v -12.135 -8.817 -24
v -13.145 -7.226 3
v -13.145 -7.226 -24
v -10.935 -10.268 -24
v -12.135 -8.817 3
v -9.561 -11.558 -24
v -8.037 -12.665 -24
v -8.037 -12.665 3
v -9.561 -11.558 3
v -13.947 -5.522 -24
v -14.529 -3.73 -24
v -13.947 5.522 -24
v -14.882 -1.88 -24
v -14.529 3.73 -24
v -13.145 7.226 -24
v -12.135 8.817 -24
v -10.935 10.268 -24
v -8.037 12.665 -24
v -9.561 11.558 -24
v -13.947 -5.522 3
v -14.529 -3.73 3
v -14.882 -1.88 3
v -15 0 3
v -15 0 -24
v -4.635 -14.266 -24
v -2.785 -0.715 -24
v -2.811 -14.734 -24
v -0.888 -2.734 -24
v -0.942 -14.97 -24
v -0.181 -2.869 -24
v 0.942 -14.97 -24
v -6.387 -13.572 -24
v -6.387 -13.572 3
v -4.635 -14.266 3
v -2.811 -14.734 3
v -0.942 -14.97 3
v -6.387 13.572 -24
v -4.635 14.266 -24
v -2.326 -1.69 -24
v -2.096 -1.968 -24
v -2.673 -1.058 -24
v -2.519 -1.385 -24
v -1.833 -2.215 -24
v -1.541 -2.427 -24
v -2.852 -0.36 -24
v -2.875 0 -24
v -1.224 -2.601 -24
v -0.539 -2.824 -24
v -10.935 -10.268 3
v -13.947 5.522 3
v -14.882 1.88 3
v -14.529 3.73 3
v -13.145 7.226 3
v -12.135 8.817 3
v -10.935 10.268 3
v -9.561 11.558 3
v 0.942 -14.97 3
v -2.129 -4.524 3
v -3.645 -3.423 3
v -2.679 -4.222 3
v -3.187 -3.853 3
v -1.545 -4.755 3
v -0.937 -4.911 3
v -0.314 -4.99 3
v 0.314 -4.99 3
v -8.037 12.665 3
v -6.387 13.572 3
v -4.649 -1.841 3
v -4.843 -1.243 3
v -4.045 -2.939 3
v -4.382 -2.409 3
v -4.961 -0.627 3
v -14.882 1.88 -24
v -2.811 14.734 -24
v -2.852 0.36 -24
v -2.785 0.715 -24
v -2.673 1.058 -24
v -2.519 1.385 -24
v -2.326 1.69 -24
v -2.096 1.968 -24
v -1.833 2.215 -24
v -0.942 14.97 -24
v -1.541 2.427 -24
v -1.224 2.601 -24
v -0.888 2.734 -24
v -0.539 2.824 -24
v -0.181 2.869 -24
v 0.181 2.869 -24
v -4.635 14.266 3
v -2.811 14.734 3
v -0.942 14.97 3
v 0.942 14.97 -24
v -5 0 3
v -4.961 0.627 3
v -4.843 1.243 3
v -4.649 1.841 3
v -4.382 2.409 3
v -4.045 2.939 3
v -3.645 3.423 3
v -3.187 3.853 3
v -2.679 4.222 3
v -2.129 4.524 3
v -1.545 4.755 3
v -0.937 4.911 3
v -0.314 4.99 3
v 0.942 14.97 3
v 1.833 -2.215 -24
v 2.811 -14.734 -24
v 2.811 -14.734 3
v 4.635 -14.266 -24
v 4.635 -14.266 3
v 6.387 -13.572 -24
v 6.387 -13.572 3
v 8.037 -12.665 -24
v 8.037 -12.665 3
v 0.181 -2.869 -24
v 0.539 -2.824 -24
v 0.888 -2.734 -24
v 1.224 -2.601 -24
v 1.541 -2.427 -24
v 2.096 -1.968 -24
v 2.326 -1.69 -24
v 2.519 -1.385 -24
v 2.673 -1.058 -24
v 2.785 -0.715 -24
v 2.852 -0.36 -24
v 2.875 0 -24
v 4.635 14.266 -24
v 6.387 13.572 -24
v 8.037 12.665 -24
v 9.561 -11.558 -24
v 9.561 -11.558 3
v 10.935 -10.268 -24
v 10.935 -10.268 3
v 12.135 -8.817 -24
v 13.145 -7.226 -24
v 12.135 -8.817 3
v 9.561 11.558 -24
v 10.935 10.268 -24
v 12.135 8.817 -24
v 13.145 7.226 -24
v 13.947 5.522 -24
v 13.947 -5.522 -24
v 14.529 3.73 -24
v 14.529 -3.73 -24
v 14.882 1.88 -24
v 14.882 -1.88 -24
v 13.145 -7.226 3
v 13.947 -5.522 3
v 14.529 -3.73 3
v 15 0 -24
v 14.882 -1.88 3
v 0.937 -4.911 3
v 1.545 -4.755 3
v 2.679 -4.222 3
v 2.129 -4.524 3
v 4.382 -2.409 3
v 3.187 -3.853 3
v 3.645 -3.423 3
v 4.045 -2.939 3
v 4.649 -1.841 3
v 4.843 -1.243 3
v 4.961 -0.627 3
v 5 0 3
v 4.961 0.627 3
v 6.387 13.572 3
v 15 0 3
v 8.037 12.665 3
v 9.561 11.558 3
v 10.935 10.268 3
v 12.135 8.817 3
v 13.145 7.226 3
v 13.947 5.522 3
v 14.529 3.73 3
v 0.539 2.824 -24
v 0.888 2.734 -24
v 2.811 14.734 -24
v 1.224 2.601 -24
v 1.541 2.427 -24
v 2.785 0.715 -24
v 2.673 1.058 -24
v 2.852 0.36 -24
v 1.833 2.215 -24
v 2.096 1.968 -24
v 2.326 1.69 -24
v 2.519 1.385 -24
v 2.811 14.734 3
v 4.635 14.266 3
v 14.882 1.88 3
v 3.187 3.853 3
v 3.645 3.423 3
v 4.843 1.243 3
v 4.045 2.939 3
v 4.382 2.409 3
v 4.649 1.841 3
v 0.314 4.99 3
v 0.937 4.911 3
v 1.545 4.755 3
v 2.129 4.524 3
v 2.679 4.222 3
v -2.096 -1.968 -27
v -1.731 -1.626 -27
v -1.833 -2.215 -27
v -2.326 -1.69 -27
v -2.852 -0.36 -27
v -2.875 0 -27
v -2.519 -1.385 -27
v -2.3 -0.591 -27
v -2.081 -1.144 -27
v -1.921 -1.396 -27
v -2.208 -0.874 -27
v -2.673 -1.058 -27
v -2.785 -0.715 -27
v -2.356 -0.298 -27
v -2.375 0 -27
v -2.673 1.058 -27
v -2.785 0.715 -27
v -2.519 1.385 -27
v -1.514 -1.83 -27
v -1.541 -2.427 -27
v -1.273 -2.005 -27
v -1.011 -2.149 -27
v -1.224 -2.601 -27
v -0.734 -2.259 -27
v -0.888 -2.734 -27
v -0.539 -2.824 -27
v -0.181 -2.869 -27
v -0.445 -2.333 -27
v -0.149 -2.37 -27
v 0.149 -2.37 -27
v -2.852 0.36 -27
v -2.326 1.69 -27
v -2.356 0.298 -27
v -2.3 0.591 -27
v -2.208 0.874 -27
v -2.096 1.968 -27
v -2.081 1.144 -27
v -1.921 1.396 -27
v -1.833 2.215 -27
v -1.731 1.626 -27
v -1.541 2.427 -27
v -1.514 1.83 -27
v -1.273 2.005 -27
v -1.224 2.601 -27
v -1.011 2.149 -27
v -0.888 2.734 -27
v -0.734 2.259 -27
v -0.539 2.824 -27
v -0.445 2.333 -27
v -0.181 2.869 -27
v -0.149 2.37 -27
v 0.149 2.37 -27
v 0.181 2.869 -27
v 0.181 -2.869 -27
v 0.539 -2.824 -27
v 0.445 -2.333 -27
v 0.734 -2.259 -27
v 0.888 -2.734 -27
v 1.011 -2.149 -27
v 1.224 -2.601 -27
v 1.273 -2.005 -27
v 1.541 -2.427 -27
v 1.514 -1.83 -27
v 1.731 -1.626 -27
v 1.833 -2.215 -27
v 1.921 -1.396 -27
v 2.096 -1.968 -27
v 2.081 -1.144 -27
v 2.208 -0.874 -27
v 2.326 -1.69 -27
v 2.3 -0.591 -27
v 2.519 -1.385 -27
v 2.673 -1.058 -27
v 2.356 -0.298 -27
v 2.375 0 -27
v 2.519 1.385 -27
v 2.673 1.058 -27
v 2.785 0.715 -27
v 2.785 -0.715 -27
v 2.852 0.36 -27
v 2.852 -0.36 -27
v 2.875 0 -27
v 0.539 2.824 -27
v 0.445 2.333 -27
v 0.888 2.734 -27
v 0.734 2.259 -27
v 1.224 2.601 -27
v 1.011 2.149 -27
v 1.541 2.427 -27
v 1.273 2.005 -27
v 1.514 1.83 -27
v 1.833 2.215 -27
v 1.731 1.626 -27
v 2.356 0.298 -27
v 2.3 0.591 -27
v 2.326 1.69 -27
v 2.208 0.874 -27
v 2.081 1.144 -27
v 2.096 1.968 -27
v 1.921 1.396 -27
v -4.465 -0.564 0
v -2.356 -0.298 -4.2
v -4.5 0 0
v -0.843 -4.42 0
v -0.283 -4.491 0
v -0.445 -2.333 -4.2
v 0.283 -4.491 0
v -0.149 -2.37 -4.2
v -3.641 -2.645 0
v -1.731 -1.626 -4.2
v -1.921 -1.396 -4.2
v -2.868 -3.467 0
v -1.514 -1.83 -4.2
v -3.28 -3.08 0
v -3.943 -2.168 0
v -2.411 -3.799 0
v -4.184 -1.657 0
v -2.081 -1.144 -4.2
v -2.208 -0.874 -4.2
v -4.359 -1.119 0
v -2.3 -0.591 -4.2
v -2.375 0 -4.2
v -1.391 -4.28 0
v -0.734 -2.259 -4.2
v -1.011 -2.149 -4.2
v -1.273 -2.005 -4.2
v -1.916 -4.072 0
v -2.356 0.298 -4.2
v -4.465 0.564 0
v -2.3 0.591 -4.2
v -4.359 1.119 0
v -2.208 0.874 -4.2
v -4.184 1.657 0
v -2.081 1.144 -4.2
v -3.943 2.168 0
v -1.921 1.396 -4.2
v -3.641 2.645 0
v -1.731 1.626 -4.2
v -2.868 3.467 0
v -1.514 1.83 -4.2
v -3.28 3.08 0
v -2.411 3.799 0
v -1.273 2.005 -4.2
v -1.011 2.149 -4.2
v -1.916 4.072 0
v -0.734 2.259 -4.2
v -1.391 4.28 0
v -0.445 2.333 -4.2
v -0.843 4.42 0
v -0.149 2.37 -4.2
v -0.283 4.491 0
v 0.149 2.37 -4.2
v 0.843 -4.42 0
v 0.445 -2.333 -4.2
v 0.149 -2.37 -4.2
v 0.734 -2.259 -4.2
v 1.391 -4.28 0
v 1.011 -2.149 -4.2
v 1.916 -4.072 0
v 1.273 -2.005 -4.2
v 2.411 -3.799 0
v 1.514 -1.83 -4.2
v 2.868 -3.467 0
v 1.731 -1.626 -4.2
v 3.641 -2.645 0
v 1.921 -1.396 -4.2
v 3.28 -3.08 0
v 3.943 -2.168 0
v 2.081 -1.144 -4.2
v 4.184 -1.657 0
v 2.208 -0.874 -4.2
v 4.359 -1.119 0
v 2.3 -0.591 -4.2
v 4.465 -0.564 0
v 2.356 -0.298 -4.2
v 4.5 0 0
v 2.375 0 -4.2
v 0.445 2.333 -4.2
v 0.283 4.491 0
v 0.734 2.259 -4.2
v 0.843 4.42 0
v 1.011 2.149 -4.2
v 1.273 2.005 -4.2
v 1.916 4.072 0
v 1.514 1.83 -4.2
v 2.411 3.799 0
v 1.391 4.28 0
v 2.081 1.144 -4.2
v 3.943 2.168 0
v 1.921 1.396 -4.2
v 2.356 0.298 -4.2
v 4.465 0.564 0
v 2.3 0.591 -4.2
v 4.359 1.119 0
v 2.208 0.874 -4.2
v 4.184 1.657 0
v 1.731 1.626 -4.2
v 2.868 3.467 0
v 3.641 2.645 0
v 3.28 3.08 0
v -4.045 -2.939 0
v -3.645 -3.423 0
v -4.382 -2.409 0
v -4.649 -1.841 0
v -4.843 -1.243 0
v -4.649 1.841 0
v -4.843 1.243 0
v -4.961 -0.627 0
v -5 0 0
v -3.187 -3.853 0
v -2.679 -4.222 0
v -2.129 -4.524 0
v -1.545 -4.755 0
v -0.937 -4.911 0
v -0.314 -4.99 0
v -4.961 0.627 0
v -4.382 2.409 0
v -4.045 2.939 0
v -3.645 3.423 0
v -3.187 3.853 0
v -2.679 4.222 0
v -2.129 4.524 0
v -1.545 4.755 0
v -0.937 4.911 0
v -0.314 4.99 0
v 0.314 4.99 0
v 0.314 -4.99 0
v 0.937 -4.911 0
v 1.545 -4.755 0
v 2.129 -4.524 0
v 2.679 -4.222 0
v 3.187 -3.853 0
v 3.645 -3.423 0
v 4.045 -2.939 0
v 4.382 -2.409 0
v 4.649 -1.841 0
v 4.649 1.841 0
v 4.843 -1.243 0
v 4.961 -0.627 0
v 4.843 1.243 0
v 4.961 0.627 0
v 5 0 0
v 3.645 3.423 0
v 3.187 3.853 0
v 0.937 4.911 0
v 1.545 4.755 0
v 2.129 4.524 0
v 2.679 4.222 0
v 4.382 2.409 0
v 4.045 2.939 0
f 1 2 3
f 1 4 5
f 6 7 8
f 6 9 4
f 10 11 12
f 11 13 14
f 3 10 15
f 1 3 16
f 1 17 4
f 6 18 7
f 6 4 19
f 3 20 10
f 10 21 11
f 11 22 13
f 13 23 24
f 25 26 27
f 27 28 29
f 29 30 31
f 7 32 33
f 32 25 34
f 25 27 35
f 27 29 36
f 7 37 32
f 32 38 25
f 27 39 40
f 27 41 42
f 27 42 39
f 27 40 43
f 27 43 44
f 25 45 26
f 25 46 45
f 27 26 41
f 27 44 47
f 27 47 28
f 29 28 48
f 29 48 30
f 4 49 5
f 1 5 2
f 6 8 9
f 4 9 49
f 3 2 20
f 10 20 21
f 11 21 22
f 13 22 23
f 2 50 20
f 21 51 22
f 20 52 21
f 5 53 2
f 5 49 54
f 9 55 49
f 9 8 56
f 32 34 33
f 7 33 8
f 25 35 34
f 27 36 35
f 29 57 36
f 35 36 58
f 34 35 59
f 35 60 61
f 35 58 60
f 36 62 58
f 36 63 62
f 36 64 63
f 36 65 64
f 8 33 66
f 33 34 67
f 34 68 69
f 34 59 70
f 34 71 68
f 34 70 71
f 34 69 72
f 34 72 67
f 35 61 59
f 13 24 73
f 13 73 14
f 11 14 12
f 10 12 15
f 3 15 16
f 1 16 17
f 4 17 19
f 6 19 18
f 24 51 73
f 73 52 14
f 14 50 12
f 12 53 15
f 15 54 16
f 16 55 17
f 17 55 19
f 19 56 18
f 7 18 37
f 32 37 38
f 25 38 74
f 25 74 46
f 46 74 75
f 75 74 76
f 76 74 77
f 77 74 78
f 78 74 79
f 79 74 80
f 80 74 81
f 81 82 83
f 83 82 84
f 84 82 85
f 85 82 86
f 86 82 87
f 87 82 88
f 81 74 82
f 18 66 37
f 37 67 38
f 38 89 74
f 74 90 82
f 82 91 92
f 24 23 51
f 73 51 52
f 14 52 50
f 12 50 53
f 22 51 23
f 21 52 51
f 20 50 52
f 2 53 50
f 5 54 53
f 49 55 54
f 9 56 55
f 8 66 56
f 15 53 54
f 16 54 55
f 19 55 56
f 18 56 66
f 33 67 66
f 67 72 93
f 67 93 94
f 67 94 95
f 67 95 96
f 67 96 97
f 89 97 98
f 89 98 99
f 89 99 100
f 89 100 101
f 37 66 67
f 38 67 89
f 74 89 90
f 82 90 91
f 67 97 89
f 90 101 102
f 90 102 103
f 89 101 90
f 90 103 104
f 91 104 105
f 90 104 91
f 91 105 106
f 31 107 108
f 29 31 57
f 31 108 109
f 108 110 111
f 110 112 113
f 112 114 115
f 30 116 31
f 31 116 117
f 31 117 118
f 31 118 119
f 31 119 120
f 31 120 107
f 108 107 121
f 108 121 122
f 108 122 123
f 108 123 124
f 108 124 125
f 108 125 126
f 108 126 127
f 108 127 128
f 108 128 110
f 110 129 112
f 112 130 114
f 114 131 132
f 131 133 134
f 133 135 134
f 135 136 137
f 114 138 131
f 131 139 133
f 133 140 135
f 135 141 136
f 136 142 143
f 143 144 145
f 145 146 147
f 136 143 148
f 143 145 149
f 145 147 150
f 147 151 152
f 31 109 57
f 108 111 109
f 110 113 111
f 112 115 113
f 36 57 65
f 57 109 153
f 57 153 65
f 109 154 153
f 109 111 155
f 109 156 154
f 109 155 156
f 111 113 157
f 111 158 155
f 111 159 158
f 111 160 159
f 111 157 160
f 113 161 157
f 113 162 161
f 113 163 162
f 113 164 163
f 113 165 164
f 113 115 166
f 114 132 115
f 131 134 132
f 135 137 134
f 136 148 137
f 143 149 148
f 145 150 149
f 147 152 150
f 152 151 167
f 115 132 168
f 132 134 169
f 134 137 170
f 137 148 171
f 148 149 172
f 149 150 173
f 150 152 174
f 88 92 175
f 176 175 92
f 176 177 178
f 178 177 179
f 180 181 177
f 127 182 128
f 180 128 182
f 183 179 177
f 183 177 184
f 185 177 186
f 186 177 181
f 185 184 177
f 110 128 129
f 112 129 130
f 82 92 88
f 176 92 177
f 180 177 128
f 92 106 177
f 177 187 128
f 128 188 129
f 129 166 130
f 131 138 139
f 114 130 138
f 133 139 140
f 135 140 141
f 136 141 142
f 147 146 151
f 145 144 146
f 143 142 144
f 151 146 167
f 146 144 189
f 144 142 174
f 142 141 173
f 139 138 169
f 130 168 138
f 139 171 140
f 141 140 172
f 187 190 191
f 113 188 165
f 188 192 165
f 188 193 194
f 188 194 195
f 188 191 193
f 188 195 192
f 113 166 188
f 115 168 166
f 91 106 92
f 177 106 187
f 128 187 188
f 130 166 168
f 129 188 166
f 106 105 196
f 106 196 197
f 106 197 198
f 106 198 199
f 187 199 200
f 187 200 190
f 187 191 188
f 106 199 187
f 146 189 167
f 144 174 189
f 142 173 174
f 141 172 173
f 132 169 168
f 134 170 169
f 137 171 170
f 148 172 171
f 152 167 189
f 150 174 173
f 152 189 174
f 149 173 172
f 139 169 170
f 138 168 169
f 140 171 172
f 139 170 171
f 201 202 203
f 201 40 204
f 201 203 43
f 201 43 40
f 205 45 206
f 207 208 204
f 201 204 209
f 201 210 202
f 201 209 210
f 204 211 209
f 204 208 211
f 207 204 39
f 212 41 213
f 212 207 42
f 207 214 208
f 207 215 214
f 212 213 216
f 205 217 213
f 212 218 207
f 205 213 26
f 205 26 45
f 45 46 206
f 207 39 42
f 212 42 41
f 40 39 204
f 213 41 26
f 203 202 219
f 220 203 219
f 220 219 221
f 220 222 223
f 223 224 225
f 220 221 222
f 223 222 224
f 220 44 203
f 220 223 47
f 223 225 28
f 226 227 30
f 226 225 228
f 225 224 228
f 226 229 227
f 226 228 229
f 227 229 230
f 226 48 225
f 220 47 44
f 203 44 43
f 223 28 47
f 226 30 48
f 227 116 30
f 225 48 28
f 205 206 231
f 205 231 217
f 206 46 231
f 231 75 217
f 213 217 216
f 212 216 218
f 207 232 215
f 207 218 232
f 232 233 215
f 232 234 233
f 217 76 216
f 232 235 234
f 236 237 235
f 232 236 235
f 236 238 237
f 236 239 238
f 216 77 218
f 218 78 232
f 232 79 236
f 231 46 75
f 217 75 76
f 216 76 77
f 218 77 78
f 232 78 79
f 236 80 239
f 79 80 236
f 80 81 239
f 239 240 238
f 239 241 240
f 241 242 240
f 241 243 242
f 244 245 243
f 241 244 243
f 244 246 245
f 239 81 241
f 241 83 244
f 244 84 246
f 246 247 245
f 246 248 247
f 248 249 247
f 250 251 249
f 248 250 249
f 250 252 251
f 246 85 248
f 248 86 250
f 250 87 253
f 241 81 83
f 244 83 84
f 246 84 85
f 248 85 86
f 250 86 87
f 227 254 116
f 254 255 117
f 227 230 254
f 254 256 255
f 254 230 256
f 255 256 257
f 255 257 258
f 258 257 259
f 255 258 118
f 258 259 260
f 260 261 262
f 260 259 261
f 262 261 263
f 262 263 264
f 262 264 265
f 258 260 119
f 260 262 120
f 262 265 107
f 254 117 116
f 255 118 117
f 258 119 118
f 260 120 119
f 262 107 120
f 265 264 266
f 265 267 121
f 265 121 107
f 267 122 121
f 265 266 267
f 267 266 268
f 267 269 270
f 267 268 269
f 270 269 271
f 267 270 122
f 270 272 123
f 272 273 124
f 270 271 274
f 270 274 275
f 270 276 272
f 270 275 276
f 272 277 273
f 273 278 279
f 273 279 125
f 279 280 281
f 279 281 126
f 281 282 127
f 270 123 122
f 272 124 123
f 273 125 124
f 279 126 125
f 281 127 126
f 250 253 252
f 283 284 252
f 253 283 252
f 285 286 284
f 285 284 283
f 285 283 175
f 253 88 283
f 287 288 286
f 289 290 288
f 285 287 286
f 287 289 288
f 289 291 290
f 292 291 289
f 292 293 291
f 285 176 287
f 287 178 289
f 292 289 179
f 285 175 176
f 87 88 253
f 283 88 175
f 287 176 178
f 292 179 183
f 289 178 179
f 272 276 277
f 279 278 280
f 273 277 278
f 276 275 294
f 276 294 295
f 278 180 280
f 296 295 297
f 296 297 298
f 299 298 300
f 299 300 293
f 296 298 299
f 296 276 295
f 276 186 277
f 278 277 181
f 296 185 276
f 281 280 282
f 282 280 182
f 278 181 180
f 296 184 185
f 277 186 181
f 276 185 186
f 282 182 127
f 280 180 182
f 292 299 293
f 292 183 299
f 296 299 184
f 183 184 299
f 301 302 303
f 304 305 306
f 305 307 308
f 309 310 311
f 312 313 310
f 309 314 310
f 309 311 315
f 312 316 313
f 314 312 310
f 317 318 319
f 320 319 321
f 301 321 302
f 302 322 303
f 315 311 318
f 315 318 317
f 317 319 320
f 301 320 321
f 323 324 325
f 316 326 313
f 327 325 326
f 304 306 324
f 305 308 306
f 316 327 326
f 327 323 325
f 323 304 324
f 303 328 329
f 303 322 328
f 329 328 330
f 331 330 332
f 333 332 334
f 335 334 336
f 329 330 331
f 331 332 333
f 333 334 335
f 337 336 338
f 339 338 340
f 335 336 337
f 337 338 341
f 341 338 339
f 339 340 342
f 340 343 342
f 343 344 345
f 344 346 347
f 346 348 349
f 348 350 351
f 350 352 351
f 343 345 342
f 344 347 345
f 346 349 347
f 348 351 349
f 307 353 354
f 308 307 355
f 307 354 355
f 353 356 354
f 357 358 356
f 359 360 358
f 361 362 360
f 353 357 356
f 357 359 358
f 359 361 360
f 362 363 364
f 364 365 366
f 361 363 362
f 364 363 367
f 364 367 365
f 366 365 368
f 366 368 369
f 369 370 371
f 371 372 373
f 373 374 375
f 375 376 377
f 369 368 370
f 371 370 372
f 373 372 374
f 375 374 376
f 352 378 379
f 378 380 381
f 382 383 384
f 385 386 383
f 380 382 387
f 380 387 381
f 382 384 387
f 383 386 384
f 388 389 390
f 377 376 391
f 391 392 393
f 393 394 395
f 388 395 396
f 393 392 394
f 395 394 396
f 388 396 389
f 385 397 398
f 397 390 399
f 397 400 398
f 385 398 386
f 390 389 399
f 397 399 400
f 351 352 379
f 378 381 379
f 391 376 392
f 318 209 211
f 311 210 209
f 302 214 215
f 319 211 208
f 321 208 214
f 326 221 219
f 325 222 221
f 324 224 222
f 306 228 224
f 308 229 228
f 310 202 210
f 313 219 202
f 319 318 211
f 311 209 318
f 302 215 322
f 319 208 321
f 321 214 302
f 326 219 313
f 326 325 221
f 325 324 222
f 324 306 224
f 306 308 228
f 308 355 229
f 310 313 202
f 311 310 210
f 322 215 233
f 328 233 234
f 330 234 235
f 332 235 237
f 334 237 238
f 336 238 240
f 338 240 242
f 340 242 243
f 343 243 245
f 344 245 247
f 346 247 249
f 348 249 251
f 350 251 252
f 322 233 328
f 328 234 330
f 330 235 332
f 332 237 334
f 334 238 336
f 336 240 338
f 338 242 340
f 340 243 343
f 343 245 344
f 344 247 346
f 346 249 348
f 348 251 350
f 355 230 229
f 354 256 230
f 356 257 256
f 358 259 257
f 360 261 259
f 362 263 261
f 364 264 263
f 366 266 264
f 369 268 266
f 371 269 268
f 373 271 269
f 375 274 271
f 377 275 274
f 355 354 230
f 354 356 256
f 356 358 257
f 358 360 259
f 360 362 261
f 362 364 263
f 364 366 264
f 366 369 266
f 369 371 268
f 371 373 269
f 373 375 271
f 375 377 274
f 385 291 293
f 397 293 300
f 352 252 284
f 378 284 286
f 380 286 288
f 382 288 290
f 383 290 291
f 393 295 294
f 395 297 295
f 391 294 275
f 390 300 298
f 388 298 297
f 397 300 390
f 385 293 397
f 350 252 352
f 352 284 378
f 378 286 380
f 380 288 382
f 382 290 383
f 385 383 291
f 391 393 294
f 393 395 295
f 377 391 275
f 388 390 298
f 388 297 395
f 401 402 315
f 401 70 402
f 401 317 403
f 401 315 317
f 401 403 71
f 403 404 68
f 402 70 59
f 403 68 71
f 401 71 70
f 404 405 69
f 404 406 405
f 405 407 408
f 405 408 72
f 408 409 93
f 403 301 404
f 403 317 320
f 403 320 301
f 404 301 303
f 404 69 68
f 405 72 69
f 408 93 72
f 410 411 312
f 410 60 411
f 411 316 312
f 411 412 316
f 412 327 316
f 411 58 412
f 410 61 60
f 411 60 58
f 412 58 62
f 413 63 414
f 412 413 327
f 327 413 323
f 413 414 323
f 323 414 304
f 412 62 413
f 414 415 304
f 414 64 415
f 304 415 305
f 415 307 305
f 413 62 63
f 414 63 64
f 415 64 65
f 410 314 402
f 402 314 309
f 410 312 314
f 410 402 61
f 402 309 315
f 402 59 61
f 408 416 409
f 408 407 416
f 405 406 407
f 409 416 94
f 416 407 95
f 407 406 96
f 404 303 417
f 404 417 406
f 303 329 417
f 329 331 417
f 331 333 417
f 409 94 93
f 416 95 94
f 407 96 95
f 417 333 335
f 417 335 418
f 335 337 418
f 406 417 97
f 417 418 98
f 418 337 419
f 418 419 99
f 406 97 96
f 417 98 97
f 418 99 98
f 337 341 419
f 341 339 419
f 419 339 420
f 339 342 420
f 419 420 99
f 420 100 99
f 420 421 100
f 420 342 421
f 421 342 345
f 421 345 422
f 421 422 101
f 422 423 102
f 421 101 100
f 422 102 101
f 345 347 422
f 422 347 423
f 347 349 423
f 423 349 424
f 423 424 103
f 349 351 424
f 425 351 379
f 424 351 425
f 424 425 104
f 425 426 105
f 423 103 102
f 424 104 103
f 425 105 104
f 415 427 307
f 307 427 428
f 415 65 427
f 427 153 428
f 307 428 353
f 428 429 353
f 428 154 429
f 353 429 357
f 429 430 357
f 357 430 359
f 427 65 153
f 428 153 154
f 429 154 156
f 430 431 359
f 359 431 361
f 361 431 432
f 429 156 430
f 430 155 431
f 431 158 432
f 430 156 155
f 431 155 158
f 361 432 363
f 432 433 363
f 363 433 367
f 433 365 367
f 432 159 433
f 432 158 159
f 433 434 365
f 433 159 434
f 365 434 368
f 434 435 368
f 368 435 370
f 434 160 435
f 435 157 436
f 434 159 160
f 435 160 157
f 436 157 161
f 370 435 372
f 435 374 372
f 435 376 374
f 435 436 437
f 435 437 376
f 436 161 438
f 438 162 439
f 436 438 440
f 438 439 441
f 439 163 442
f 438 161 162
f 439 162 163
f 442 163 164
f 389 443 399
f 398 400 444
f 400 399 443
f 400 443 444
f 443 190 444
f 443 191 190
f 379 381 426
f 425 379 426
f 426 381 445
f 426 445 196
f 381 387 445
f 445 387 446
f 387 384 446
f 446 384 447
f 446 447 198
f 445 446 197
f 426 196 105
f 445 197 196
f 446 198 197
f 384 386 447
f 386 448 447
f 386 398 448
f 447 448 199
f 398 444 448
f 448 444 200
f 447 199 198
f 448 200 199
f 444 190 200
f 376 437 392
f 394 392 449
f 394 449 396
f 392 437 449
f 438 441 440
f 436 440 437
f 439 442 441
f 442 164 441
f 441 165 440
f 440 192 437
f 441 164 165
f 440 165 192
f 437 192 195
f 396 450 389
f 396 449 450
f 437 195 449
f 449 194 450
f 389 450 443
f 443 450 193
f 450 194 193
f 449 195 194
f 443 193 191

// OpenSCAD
$fn = 50;

difference() {
	union() {
		translate(v = [0, 0, -24.0]) {
			cylinder(h = 27, r = 15.0);
		}
		#translate(v = [0, 0, -27.0]) {
			cylinder(h = 27, r = 2.875);
		}
	}
	union() {
		translate(v = [0, 0, 0]) {
			rotate(a = [0, 0, 0]) {
				difference() {
					union() {
						translate(v = [0, 0, -27.0]) {
							cylinder(h = 27, r = 2.25);
						}
						translate(v = [0, 0, -4.2]) {
							cylinder(h = 4.2, r1 = 2.375, r2 = 4.5);
						}
						translate(v = [0, 0, -27.0]) {
							cylinder(h = 27, r = 2.375);
						}
						translate(v = [0, 0, -27.0]) {
							cylinder(h = 27, r = 2.25);
						}
					}
					union();
				}
			}
		}
		#cylinder(h = 3, r = 5.0);
	}
}
